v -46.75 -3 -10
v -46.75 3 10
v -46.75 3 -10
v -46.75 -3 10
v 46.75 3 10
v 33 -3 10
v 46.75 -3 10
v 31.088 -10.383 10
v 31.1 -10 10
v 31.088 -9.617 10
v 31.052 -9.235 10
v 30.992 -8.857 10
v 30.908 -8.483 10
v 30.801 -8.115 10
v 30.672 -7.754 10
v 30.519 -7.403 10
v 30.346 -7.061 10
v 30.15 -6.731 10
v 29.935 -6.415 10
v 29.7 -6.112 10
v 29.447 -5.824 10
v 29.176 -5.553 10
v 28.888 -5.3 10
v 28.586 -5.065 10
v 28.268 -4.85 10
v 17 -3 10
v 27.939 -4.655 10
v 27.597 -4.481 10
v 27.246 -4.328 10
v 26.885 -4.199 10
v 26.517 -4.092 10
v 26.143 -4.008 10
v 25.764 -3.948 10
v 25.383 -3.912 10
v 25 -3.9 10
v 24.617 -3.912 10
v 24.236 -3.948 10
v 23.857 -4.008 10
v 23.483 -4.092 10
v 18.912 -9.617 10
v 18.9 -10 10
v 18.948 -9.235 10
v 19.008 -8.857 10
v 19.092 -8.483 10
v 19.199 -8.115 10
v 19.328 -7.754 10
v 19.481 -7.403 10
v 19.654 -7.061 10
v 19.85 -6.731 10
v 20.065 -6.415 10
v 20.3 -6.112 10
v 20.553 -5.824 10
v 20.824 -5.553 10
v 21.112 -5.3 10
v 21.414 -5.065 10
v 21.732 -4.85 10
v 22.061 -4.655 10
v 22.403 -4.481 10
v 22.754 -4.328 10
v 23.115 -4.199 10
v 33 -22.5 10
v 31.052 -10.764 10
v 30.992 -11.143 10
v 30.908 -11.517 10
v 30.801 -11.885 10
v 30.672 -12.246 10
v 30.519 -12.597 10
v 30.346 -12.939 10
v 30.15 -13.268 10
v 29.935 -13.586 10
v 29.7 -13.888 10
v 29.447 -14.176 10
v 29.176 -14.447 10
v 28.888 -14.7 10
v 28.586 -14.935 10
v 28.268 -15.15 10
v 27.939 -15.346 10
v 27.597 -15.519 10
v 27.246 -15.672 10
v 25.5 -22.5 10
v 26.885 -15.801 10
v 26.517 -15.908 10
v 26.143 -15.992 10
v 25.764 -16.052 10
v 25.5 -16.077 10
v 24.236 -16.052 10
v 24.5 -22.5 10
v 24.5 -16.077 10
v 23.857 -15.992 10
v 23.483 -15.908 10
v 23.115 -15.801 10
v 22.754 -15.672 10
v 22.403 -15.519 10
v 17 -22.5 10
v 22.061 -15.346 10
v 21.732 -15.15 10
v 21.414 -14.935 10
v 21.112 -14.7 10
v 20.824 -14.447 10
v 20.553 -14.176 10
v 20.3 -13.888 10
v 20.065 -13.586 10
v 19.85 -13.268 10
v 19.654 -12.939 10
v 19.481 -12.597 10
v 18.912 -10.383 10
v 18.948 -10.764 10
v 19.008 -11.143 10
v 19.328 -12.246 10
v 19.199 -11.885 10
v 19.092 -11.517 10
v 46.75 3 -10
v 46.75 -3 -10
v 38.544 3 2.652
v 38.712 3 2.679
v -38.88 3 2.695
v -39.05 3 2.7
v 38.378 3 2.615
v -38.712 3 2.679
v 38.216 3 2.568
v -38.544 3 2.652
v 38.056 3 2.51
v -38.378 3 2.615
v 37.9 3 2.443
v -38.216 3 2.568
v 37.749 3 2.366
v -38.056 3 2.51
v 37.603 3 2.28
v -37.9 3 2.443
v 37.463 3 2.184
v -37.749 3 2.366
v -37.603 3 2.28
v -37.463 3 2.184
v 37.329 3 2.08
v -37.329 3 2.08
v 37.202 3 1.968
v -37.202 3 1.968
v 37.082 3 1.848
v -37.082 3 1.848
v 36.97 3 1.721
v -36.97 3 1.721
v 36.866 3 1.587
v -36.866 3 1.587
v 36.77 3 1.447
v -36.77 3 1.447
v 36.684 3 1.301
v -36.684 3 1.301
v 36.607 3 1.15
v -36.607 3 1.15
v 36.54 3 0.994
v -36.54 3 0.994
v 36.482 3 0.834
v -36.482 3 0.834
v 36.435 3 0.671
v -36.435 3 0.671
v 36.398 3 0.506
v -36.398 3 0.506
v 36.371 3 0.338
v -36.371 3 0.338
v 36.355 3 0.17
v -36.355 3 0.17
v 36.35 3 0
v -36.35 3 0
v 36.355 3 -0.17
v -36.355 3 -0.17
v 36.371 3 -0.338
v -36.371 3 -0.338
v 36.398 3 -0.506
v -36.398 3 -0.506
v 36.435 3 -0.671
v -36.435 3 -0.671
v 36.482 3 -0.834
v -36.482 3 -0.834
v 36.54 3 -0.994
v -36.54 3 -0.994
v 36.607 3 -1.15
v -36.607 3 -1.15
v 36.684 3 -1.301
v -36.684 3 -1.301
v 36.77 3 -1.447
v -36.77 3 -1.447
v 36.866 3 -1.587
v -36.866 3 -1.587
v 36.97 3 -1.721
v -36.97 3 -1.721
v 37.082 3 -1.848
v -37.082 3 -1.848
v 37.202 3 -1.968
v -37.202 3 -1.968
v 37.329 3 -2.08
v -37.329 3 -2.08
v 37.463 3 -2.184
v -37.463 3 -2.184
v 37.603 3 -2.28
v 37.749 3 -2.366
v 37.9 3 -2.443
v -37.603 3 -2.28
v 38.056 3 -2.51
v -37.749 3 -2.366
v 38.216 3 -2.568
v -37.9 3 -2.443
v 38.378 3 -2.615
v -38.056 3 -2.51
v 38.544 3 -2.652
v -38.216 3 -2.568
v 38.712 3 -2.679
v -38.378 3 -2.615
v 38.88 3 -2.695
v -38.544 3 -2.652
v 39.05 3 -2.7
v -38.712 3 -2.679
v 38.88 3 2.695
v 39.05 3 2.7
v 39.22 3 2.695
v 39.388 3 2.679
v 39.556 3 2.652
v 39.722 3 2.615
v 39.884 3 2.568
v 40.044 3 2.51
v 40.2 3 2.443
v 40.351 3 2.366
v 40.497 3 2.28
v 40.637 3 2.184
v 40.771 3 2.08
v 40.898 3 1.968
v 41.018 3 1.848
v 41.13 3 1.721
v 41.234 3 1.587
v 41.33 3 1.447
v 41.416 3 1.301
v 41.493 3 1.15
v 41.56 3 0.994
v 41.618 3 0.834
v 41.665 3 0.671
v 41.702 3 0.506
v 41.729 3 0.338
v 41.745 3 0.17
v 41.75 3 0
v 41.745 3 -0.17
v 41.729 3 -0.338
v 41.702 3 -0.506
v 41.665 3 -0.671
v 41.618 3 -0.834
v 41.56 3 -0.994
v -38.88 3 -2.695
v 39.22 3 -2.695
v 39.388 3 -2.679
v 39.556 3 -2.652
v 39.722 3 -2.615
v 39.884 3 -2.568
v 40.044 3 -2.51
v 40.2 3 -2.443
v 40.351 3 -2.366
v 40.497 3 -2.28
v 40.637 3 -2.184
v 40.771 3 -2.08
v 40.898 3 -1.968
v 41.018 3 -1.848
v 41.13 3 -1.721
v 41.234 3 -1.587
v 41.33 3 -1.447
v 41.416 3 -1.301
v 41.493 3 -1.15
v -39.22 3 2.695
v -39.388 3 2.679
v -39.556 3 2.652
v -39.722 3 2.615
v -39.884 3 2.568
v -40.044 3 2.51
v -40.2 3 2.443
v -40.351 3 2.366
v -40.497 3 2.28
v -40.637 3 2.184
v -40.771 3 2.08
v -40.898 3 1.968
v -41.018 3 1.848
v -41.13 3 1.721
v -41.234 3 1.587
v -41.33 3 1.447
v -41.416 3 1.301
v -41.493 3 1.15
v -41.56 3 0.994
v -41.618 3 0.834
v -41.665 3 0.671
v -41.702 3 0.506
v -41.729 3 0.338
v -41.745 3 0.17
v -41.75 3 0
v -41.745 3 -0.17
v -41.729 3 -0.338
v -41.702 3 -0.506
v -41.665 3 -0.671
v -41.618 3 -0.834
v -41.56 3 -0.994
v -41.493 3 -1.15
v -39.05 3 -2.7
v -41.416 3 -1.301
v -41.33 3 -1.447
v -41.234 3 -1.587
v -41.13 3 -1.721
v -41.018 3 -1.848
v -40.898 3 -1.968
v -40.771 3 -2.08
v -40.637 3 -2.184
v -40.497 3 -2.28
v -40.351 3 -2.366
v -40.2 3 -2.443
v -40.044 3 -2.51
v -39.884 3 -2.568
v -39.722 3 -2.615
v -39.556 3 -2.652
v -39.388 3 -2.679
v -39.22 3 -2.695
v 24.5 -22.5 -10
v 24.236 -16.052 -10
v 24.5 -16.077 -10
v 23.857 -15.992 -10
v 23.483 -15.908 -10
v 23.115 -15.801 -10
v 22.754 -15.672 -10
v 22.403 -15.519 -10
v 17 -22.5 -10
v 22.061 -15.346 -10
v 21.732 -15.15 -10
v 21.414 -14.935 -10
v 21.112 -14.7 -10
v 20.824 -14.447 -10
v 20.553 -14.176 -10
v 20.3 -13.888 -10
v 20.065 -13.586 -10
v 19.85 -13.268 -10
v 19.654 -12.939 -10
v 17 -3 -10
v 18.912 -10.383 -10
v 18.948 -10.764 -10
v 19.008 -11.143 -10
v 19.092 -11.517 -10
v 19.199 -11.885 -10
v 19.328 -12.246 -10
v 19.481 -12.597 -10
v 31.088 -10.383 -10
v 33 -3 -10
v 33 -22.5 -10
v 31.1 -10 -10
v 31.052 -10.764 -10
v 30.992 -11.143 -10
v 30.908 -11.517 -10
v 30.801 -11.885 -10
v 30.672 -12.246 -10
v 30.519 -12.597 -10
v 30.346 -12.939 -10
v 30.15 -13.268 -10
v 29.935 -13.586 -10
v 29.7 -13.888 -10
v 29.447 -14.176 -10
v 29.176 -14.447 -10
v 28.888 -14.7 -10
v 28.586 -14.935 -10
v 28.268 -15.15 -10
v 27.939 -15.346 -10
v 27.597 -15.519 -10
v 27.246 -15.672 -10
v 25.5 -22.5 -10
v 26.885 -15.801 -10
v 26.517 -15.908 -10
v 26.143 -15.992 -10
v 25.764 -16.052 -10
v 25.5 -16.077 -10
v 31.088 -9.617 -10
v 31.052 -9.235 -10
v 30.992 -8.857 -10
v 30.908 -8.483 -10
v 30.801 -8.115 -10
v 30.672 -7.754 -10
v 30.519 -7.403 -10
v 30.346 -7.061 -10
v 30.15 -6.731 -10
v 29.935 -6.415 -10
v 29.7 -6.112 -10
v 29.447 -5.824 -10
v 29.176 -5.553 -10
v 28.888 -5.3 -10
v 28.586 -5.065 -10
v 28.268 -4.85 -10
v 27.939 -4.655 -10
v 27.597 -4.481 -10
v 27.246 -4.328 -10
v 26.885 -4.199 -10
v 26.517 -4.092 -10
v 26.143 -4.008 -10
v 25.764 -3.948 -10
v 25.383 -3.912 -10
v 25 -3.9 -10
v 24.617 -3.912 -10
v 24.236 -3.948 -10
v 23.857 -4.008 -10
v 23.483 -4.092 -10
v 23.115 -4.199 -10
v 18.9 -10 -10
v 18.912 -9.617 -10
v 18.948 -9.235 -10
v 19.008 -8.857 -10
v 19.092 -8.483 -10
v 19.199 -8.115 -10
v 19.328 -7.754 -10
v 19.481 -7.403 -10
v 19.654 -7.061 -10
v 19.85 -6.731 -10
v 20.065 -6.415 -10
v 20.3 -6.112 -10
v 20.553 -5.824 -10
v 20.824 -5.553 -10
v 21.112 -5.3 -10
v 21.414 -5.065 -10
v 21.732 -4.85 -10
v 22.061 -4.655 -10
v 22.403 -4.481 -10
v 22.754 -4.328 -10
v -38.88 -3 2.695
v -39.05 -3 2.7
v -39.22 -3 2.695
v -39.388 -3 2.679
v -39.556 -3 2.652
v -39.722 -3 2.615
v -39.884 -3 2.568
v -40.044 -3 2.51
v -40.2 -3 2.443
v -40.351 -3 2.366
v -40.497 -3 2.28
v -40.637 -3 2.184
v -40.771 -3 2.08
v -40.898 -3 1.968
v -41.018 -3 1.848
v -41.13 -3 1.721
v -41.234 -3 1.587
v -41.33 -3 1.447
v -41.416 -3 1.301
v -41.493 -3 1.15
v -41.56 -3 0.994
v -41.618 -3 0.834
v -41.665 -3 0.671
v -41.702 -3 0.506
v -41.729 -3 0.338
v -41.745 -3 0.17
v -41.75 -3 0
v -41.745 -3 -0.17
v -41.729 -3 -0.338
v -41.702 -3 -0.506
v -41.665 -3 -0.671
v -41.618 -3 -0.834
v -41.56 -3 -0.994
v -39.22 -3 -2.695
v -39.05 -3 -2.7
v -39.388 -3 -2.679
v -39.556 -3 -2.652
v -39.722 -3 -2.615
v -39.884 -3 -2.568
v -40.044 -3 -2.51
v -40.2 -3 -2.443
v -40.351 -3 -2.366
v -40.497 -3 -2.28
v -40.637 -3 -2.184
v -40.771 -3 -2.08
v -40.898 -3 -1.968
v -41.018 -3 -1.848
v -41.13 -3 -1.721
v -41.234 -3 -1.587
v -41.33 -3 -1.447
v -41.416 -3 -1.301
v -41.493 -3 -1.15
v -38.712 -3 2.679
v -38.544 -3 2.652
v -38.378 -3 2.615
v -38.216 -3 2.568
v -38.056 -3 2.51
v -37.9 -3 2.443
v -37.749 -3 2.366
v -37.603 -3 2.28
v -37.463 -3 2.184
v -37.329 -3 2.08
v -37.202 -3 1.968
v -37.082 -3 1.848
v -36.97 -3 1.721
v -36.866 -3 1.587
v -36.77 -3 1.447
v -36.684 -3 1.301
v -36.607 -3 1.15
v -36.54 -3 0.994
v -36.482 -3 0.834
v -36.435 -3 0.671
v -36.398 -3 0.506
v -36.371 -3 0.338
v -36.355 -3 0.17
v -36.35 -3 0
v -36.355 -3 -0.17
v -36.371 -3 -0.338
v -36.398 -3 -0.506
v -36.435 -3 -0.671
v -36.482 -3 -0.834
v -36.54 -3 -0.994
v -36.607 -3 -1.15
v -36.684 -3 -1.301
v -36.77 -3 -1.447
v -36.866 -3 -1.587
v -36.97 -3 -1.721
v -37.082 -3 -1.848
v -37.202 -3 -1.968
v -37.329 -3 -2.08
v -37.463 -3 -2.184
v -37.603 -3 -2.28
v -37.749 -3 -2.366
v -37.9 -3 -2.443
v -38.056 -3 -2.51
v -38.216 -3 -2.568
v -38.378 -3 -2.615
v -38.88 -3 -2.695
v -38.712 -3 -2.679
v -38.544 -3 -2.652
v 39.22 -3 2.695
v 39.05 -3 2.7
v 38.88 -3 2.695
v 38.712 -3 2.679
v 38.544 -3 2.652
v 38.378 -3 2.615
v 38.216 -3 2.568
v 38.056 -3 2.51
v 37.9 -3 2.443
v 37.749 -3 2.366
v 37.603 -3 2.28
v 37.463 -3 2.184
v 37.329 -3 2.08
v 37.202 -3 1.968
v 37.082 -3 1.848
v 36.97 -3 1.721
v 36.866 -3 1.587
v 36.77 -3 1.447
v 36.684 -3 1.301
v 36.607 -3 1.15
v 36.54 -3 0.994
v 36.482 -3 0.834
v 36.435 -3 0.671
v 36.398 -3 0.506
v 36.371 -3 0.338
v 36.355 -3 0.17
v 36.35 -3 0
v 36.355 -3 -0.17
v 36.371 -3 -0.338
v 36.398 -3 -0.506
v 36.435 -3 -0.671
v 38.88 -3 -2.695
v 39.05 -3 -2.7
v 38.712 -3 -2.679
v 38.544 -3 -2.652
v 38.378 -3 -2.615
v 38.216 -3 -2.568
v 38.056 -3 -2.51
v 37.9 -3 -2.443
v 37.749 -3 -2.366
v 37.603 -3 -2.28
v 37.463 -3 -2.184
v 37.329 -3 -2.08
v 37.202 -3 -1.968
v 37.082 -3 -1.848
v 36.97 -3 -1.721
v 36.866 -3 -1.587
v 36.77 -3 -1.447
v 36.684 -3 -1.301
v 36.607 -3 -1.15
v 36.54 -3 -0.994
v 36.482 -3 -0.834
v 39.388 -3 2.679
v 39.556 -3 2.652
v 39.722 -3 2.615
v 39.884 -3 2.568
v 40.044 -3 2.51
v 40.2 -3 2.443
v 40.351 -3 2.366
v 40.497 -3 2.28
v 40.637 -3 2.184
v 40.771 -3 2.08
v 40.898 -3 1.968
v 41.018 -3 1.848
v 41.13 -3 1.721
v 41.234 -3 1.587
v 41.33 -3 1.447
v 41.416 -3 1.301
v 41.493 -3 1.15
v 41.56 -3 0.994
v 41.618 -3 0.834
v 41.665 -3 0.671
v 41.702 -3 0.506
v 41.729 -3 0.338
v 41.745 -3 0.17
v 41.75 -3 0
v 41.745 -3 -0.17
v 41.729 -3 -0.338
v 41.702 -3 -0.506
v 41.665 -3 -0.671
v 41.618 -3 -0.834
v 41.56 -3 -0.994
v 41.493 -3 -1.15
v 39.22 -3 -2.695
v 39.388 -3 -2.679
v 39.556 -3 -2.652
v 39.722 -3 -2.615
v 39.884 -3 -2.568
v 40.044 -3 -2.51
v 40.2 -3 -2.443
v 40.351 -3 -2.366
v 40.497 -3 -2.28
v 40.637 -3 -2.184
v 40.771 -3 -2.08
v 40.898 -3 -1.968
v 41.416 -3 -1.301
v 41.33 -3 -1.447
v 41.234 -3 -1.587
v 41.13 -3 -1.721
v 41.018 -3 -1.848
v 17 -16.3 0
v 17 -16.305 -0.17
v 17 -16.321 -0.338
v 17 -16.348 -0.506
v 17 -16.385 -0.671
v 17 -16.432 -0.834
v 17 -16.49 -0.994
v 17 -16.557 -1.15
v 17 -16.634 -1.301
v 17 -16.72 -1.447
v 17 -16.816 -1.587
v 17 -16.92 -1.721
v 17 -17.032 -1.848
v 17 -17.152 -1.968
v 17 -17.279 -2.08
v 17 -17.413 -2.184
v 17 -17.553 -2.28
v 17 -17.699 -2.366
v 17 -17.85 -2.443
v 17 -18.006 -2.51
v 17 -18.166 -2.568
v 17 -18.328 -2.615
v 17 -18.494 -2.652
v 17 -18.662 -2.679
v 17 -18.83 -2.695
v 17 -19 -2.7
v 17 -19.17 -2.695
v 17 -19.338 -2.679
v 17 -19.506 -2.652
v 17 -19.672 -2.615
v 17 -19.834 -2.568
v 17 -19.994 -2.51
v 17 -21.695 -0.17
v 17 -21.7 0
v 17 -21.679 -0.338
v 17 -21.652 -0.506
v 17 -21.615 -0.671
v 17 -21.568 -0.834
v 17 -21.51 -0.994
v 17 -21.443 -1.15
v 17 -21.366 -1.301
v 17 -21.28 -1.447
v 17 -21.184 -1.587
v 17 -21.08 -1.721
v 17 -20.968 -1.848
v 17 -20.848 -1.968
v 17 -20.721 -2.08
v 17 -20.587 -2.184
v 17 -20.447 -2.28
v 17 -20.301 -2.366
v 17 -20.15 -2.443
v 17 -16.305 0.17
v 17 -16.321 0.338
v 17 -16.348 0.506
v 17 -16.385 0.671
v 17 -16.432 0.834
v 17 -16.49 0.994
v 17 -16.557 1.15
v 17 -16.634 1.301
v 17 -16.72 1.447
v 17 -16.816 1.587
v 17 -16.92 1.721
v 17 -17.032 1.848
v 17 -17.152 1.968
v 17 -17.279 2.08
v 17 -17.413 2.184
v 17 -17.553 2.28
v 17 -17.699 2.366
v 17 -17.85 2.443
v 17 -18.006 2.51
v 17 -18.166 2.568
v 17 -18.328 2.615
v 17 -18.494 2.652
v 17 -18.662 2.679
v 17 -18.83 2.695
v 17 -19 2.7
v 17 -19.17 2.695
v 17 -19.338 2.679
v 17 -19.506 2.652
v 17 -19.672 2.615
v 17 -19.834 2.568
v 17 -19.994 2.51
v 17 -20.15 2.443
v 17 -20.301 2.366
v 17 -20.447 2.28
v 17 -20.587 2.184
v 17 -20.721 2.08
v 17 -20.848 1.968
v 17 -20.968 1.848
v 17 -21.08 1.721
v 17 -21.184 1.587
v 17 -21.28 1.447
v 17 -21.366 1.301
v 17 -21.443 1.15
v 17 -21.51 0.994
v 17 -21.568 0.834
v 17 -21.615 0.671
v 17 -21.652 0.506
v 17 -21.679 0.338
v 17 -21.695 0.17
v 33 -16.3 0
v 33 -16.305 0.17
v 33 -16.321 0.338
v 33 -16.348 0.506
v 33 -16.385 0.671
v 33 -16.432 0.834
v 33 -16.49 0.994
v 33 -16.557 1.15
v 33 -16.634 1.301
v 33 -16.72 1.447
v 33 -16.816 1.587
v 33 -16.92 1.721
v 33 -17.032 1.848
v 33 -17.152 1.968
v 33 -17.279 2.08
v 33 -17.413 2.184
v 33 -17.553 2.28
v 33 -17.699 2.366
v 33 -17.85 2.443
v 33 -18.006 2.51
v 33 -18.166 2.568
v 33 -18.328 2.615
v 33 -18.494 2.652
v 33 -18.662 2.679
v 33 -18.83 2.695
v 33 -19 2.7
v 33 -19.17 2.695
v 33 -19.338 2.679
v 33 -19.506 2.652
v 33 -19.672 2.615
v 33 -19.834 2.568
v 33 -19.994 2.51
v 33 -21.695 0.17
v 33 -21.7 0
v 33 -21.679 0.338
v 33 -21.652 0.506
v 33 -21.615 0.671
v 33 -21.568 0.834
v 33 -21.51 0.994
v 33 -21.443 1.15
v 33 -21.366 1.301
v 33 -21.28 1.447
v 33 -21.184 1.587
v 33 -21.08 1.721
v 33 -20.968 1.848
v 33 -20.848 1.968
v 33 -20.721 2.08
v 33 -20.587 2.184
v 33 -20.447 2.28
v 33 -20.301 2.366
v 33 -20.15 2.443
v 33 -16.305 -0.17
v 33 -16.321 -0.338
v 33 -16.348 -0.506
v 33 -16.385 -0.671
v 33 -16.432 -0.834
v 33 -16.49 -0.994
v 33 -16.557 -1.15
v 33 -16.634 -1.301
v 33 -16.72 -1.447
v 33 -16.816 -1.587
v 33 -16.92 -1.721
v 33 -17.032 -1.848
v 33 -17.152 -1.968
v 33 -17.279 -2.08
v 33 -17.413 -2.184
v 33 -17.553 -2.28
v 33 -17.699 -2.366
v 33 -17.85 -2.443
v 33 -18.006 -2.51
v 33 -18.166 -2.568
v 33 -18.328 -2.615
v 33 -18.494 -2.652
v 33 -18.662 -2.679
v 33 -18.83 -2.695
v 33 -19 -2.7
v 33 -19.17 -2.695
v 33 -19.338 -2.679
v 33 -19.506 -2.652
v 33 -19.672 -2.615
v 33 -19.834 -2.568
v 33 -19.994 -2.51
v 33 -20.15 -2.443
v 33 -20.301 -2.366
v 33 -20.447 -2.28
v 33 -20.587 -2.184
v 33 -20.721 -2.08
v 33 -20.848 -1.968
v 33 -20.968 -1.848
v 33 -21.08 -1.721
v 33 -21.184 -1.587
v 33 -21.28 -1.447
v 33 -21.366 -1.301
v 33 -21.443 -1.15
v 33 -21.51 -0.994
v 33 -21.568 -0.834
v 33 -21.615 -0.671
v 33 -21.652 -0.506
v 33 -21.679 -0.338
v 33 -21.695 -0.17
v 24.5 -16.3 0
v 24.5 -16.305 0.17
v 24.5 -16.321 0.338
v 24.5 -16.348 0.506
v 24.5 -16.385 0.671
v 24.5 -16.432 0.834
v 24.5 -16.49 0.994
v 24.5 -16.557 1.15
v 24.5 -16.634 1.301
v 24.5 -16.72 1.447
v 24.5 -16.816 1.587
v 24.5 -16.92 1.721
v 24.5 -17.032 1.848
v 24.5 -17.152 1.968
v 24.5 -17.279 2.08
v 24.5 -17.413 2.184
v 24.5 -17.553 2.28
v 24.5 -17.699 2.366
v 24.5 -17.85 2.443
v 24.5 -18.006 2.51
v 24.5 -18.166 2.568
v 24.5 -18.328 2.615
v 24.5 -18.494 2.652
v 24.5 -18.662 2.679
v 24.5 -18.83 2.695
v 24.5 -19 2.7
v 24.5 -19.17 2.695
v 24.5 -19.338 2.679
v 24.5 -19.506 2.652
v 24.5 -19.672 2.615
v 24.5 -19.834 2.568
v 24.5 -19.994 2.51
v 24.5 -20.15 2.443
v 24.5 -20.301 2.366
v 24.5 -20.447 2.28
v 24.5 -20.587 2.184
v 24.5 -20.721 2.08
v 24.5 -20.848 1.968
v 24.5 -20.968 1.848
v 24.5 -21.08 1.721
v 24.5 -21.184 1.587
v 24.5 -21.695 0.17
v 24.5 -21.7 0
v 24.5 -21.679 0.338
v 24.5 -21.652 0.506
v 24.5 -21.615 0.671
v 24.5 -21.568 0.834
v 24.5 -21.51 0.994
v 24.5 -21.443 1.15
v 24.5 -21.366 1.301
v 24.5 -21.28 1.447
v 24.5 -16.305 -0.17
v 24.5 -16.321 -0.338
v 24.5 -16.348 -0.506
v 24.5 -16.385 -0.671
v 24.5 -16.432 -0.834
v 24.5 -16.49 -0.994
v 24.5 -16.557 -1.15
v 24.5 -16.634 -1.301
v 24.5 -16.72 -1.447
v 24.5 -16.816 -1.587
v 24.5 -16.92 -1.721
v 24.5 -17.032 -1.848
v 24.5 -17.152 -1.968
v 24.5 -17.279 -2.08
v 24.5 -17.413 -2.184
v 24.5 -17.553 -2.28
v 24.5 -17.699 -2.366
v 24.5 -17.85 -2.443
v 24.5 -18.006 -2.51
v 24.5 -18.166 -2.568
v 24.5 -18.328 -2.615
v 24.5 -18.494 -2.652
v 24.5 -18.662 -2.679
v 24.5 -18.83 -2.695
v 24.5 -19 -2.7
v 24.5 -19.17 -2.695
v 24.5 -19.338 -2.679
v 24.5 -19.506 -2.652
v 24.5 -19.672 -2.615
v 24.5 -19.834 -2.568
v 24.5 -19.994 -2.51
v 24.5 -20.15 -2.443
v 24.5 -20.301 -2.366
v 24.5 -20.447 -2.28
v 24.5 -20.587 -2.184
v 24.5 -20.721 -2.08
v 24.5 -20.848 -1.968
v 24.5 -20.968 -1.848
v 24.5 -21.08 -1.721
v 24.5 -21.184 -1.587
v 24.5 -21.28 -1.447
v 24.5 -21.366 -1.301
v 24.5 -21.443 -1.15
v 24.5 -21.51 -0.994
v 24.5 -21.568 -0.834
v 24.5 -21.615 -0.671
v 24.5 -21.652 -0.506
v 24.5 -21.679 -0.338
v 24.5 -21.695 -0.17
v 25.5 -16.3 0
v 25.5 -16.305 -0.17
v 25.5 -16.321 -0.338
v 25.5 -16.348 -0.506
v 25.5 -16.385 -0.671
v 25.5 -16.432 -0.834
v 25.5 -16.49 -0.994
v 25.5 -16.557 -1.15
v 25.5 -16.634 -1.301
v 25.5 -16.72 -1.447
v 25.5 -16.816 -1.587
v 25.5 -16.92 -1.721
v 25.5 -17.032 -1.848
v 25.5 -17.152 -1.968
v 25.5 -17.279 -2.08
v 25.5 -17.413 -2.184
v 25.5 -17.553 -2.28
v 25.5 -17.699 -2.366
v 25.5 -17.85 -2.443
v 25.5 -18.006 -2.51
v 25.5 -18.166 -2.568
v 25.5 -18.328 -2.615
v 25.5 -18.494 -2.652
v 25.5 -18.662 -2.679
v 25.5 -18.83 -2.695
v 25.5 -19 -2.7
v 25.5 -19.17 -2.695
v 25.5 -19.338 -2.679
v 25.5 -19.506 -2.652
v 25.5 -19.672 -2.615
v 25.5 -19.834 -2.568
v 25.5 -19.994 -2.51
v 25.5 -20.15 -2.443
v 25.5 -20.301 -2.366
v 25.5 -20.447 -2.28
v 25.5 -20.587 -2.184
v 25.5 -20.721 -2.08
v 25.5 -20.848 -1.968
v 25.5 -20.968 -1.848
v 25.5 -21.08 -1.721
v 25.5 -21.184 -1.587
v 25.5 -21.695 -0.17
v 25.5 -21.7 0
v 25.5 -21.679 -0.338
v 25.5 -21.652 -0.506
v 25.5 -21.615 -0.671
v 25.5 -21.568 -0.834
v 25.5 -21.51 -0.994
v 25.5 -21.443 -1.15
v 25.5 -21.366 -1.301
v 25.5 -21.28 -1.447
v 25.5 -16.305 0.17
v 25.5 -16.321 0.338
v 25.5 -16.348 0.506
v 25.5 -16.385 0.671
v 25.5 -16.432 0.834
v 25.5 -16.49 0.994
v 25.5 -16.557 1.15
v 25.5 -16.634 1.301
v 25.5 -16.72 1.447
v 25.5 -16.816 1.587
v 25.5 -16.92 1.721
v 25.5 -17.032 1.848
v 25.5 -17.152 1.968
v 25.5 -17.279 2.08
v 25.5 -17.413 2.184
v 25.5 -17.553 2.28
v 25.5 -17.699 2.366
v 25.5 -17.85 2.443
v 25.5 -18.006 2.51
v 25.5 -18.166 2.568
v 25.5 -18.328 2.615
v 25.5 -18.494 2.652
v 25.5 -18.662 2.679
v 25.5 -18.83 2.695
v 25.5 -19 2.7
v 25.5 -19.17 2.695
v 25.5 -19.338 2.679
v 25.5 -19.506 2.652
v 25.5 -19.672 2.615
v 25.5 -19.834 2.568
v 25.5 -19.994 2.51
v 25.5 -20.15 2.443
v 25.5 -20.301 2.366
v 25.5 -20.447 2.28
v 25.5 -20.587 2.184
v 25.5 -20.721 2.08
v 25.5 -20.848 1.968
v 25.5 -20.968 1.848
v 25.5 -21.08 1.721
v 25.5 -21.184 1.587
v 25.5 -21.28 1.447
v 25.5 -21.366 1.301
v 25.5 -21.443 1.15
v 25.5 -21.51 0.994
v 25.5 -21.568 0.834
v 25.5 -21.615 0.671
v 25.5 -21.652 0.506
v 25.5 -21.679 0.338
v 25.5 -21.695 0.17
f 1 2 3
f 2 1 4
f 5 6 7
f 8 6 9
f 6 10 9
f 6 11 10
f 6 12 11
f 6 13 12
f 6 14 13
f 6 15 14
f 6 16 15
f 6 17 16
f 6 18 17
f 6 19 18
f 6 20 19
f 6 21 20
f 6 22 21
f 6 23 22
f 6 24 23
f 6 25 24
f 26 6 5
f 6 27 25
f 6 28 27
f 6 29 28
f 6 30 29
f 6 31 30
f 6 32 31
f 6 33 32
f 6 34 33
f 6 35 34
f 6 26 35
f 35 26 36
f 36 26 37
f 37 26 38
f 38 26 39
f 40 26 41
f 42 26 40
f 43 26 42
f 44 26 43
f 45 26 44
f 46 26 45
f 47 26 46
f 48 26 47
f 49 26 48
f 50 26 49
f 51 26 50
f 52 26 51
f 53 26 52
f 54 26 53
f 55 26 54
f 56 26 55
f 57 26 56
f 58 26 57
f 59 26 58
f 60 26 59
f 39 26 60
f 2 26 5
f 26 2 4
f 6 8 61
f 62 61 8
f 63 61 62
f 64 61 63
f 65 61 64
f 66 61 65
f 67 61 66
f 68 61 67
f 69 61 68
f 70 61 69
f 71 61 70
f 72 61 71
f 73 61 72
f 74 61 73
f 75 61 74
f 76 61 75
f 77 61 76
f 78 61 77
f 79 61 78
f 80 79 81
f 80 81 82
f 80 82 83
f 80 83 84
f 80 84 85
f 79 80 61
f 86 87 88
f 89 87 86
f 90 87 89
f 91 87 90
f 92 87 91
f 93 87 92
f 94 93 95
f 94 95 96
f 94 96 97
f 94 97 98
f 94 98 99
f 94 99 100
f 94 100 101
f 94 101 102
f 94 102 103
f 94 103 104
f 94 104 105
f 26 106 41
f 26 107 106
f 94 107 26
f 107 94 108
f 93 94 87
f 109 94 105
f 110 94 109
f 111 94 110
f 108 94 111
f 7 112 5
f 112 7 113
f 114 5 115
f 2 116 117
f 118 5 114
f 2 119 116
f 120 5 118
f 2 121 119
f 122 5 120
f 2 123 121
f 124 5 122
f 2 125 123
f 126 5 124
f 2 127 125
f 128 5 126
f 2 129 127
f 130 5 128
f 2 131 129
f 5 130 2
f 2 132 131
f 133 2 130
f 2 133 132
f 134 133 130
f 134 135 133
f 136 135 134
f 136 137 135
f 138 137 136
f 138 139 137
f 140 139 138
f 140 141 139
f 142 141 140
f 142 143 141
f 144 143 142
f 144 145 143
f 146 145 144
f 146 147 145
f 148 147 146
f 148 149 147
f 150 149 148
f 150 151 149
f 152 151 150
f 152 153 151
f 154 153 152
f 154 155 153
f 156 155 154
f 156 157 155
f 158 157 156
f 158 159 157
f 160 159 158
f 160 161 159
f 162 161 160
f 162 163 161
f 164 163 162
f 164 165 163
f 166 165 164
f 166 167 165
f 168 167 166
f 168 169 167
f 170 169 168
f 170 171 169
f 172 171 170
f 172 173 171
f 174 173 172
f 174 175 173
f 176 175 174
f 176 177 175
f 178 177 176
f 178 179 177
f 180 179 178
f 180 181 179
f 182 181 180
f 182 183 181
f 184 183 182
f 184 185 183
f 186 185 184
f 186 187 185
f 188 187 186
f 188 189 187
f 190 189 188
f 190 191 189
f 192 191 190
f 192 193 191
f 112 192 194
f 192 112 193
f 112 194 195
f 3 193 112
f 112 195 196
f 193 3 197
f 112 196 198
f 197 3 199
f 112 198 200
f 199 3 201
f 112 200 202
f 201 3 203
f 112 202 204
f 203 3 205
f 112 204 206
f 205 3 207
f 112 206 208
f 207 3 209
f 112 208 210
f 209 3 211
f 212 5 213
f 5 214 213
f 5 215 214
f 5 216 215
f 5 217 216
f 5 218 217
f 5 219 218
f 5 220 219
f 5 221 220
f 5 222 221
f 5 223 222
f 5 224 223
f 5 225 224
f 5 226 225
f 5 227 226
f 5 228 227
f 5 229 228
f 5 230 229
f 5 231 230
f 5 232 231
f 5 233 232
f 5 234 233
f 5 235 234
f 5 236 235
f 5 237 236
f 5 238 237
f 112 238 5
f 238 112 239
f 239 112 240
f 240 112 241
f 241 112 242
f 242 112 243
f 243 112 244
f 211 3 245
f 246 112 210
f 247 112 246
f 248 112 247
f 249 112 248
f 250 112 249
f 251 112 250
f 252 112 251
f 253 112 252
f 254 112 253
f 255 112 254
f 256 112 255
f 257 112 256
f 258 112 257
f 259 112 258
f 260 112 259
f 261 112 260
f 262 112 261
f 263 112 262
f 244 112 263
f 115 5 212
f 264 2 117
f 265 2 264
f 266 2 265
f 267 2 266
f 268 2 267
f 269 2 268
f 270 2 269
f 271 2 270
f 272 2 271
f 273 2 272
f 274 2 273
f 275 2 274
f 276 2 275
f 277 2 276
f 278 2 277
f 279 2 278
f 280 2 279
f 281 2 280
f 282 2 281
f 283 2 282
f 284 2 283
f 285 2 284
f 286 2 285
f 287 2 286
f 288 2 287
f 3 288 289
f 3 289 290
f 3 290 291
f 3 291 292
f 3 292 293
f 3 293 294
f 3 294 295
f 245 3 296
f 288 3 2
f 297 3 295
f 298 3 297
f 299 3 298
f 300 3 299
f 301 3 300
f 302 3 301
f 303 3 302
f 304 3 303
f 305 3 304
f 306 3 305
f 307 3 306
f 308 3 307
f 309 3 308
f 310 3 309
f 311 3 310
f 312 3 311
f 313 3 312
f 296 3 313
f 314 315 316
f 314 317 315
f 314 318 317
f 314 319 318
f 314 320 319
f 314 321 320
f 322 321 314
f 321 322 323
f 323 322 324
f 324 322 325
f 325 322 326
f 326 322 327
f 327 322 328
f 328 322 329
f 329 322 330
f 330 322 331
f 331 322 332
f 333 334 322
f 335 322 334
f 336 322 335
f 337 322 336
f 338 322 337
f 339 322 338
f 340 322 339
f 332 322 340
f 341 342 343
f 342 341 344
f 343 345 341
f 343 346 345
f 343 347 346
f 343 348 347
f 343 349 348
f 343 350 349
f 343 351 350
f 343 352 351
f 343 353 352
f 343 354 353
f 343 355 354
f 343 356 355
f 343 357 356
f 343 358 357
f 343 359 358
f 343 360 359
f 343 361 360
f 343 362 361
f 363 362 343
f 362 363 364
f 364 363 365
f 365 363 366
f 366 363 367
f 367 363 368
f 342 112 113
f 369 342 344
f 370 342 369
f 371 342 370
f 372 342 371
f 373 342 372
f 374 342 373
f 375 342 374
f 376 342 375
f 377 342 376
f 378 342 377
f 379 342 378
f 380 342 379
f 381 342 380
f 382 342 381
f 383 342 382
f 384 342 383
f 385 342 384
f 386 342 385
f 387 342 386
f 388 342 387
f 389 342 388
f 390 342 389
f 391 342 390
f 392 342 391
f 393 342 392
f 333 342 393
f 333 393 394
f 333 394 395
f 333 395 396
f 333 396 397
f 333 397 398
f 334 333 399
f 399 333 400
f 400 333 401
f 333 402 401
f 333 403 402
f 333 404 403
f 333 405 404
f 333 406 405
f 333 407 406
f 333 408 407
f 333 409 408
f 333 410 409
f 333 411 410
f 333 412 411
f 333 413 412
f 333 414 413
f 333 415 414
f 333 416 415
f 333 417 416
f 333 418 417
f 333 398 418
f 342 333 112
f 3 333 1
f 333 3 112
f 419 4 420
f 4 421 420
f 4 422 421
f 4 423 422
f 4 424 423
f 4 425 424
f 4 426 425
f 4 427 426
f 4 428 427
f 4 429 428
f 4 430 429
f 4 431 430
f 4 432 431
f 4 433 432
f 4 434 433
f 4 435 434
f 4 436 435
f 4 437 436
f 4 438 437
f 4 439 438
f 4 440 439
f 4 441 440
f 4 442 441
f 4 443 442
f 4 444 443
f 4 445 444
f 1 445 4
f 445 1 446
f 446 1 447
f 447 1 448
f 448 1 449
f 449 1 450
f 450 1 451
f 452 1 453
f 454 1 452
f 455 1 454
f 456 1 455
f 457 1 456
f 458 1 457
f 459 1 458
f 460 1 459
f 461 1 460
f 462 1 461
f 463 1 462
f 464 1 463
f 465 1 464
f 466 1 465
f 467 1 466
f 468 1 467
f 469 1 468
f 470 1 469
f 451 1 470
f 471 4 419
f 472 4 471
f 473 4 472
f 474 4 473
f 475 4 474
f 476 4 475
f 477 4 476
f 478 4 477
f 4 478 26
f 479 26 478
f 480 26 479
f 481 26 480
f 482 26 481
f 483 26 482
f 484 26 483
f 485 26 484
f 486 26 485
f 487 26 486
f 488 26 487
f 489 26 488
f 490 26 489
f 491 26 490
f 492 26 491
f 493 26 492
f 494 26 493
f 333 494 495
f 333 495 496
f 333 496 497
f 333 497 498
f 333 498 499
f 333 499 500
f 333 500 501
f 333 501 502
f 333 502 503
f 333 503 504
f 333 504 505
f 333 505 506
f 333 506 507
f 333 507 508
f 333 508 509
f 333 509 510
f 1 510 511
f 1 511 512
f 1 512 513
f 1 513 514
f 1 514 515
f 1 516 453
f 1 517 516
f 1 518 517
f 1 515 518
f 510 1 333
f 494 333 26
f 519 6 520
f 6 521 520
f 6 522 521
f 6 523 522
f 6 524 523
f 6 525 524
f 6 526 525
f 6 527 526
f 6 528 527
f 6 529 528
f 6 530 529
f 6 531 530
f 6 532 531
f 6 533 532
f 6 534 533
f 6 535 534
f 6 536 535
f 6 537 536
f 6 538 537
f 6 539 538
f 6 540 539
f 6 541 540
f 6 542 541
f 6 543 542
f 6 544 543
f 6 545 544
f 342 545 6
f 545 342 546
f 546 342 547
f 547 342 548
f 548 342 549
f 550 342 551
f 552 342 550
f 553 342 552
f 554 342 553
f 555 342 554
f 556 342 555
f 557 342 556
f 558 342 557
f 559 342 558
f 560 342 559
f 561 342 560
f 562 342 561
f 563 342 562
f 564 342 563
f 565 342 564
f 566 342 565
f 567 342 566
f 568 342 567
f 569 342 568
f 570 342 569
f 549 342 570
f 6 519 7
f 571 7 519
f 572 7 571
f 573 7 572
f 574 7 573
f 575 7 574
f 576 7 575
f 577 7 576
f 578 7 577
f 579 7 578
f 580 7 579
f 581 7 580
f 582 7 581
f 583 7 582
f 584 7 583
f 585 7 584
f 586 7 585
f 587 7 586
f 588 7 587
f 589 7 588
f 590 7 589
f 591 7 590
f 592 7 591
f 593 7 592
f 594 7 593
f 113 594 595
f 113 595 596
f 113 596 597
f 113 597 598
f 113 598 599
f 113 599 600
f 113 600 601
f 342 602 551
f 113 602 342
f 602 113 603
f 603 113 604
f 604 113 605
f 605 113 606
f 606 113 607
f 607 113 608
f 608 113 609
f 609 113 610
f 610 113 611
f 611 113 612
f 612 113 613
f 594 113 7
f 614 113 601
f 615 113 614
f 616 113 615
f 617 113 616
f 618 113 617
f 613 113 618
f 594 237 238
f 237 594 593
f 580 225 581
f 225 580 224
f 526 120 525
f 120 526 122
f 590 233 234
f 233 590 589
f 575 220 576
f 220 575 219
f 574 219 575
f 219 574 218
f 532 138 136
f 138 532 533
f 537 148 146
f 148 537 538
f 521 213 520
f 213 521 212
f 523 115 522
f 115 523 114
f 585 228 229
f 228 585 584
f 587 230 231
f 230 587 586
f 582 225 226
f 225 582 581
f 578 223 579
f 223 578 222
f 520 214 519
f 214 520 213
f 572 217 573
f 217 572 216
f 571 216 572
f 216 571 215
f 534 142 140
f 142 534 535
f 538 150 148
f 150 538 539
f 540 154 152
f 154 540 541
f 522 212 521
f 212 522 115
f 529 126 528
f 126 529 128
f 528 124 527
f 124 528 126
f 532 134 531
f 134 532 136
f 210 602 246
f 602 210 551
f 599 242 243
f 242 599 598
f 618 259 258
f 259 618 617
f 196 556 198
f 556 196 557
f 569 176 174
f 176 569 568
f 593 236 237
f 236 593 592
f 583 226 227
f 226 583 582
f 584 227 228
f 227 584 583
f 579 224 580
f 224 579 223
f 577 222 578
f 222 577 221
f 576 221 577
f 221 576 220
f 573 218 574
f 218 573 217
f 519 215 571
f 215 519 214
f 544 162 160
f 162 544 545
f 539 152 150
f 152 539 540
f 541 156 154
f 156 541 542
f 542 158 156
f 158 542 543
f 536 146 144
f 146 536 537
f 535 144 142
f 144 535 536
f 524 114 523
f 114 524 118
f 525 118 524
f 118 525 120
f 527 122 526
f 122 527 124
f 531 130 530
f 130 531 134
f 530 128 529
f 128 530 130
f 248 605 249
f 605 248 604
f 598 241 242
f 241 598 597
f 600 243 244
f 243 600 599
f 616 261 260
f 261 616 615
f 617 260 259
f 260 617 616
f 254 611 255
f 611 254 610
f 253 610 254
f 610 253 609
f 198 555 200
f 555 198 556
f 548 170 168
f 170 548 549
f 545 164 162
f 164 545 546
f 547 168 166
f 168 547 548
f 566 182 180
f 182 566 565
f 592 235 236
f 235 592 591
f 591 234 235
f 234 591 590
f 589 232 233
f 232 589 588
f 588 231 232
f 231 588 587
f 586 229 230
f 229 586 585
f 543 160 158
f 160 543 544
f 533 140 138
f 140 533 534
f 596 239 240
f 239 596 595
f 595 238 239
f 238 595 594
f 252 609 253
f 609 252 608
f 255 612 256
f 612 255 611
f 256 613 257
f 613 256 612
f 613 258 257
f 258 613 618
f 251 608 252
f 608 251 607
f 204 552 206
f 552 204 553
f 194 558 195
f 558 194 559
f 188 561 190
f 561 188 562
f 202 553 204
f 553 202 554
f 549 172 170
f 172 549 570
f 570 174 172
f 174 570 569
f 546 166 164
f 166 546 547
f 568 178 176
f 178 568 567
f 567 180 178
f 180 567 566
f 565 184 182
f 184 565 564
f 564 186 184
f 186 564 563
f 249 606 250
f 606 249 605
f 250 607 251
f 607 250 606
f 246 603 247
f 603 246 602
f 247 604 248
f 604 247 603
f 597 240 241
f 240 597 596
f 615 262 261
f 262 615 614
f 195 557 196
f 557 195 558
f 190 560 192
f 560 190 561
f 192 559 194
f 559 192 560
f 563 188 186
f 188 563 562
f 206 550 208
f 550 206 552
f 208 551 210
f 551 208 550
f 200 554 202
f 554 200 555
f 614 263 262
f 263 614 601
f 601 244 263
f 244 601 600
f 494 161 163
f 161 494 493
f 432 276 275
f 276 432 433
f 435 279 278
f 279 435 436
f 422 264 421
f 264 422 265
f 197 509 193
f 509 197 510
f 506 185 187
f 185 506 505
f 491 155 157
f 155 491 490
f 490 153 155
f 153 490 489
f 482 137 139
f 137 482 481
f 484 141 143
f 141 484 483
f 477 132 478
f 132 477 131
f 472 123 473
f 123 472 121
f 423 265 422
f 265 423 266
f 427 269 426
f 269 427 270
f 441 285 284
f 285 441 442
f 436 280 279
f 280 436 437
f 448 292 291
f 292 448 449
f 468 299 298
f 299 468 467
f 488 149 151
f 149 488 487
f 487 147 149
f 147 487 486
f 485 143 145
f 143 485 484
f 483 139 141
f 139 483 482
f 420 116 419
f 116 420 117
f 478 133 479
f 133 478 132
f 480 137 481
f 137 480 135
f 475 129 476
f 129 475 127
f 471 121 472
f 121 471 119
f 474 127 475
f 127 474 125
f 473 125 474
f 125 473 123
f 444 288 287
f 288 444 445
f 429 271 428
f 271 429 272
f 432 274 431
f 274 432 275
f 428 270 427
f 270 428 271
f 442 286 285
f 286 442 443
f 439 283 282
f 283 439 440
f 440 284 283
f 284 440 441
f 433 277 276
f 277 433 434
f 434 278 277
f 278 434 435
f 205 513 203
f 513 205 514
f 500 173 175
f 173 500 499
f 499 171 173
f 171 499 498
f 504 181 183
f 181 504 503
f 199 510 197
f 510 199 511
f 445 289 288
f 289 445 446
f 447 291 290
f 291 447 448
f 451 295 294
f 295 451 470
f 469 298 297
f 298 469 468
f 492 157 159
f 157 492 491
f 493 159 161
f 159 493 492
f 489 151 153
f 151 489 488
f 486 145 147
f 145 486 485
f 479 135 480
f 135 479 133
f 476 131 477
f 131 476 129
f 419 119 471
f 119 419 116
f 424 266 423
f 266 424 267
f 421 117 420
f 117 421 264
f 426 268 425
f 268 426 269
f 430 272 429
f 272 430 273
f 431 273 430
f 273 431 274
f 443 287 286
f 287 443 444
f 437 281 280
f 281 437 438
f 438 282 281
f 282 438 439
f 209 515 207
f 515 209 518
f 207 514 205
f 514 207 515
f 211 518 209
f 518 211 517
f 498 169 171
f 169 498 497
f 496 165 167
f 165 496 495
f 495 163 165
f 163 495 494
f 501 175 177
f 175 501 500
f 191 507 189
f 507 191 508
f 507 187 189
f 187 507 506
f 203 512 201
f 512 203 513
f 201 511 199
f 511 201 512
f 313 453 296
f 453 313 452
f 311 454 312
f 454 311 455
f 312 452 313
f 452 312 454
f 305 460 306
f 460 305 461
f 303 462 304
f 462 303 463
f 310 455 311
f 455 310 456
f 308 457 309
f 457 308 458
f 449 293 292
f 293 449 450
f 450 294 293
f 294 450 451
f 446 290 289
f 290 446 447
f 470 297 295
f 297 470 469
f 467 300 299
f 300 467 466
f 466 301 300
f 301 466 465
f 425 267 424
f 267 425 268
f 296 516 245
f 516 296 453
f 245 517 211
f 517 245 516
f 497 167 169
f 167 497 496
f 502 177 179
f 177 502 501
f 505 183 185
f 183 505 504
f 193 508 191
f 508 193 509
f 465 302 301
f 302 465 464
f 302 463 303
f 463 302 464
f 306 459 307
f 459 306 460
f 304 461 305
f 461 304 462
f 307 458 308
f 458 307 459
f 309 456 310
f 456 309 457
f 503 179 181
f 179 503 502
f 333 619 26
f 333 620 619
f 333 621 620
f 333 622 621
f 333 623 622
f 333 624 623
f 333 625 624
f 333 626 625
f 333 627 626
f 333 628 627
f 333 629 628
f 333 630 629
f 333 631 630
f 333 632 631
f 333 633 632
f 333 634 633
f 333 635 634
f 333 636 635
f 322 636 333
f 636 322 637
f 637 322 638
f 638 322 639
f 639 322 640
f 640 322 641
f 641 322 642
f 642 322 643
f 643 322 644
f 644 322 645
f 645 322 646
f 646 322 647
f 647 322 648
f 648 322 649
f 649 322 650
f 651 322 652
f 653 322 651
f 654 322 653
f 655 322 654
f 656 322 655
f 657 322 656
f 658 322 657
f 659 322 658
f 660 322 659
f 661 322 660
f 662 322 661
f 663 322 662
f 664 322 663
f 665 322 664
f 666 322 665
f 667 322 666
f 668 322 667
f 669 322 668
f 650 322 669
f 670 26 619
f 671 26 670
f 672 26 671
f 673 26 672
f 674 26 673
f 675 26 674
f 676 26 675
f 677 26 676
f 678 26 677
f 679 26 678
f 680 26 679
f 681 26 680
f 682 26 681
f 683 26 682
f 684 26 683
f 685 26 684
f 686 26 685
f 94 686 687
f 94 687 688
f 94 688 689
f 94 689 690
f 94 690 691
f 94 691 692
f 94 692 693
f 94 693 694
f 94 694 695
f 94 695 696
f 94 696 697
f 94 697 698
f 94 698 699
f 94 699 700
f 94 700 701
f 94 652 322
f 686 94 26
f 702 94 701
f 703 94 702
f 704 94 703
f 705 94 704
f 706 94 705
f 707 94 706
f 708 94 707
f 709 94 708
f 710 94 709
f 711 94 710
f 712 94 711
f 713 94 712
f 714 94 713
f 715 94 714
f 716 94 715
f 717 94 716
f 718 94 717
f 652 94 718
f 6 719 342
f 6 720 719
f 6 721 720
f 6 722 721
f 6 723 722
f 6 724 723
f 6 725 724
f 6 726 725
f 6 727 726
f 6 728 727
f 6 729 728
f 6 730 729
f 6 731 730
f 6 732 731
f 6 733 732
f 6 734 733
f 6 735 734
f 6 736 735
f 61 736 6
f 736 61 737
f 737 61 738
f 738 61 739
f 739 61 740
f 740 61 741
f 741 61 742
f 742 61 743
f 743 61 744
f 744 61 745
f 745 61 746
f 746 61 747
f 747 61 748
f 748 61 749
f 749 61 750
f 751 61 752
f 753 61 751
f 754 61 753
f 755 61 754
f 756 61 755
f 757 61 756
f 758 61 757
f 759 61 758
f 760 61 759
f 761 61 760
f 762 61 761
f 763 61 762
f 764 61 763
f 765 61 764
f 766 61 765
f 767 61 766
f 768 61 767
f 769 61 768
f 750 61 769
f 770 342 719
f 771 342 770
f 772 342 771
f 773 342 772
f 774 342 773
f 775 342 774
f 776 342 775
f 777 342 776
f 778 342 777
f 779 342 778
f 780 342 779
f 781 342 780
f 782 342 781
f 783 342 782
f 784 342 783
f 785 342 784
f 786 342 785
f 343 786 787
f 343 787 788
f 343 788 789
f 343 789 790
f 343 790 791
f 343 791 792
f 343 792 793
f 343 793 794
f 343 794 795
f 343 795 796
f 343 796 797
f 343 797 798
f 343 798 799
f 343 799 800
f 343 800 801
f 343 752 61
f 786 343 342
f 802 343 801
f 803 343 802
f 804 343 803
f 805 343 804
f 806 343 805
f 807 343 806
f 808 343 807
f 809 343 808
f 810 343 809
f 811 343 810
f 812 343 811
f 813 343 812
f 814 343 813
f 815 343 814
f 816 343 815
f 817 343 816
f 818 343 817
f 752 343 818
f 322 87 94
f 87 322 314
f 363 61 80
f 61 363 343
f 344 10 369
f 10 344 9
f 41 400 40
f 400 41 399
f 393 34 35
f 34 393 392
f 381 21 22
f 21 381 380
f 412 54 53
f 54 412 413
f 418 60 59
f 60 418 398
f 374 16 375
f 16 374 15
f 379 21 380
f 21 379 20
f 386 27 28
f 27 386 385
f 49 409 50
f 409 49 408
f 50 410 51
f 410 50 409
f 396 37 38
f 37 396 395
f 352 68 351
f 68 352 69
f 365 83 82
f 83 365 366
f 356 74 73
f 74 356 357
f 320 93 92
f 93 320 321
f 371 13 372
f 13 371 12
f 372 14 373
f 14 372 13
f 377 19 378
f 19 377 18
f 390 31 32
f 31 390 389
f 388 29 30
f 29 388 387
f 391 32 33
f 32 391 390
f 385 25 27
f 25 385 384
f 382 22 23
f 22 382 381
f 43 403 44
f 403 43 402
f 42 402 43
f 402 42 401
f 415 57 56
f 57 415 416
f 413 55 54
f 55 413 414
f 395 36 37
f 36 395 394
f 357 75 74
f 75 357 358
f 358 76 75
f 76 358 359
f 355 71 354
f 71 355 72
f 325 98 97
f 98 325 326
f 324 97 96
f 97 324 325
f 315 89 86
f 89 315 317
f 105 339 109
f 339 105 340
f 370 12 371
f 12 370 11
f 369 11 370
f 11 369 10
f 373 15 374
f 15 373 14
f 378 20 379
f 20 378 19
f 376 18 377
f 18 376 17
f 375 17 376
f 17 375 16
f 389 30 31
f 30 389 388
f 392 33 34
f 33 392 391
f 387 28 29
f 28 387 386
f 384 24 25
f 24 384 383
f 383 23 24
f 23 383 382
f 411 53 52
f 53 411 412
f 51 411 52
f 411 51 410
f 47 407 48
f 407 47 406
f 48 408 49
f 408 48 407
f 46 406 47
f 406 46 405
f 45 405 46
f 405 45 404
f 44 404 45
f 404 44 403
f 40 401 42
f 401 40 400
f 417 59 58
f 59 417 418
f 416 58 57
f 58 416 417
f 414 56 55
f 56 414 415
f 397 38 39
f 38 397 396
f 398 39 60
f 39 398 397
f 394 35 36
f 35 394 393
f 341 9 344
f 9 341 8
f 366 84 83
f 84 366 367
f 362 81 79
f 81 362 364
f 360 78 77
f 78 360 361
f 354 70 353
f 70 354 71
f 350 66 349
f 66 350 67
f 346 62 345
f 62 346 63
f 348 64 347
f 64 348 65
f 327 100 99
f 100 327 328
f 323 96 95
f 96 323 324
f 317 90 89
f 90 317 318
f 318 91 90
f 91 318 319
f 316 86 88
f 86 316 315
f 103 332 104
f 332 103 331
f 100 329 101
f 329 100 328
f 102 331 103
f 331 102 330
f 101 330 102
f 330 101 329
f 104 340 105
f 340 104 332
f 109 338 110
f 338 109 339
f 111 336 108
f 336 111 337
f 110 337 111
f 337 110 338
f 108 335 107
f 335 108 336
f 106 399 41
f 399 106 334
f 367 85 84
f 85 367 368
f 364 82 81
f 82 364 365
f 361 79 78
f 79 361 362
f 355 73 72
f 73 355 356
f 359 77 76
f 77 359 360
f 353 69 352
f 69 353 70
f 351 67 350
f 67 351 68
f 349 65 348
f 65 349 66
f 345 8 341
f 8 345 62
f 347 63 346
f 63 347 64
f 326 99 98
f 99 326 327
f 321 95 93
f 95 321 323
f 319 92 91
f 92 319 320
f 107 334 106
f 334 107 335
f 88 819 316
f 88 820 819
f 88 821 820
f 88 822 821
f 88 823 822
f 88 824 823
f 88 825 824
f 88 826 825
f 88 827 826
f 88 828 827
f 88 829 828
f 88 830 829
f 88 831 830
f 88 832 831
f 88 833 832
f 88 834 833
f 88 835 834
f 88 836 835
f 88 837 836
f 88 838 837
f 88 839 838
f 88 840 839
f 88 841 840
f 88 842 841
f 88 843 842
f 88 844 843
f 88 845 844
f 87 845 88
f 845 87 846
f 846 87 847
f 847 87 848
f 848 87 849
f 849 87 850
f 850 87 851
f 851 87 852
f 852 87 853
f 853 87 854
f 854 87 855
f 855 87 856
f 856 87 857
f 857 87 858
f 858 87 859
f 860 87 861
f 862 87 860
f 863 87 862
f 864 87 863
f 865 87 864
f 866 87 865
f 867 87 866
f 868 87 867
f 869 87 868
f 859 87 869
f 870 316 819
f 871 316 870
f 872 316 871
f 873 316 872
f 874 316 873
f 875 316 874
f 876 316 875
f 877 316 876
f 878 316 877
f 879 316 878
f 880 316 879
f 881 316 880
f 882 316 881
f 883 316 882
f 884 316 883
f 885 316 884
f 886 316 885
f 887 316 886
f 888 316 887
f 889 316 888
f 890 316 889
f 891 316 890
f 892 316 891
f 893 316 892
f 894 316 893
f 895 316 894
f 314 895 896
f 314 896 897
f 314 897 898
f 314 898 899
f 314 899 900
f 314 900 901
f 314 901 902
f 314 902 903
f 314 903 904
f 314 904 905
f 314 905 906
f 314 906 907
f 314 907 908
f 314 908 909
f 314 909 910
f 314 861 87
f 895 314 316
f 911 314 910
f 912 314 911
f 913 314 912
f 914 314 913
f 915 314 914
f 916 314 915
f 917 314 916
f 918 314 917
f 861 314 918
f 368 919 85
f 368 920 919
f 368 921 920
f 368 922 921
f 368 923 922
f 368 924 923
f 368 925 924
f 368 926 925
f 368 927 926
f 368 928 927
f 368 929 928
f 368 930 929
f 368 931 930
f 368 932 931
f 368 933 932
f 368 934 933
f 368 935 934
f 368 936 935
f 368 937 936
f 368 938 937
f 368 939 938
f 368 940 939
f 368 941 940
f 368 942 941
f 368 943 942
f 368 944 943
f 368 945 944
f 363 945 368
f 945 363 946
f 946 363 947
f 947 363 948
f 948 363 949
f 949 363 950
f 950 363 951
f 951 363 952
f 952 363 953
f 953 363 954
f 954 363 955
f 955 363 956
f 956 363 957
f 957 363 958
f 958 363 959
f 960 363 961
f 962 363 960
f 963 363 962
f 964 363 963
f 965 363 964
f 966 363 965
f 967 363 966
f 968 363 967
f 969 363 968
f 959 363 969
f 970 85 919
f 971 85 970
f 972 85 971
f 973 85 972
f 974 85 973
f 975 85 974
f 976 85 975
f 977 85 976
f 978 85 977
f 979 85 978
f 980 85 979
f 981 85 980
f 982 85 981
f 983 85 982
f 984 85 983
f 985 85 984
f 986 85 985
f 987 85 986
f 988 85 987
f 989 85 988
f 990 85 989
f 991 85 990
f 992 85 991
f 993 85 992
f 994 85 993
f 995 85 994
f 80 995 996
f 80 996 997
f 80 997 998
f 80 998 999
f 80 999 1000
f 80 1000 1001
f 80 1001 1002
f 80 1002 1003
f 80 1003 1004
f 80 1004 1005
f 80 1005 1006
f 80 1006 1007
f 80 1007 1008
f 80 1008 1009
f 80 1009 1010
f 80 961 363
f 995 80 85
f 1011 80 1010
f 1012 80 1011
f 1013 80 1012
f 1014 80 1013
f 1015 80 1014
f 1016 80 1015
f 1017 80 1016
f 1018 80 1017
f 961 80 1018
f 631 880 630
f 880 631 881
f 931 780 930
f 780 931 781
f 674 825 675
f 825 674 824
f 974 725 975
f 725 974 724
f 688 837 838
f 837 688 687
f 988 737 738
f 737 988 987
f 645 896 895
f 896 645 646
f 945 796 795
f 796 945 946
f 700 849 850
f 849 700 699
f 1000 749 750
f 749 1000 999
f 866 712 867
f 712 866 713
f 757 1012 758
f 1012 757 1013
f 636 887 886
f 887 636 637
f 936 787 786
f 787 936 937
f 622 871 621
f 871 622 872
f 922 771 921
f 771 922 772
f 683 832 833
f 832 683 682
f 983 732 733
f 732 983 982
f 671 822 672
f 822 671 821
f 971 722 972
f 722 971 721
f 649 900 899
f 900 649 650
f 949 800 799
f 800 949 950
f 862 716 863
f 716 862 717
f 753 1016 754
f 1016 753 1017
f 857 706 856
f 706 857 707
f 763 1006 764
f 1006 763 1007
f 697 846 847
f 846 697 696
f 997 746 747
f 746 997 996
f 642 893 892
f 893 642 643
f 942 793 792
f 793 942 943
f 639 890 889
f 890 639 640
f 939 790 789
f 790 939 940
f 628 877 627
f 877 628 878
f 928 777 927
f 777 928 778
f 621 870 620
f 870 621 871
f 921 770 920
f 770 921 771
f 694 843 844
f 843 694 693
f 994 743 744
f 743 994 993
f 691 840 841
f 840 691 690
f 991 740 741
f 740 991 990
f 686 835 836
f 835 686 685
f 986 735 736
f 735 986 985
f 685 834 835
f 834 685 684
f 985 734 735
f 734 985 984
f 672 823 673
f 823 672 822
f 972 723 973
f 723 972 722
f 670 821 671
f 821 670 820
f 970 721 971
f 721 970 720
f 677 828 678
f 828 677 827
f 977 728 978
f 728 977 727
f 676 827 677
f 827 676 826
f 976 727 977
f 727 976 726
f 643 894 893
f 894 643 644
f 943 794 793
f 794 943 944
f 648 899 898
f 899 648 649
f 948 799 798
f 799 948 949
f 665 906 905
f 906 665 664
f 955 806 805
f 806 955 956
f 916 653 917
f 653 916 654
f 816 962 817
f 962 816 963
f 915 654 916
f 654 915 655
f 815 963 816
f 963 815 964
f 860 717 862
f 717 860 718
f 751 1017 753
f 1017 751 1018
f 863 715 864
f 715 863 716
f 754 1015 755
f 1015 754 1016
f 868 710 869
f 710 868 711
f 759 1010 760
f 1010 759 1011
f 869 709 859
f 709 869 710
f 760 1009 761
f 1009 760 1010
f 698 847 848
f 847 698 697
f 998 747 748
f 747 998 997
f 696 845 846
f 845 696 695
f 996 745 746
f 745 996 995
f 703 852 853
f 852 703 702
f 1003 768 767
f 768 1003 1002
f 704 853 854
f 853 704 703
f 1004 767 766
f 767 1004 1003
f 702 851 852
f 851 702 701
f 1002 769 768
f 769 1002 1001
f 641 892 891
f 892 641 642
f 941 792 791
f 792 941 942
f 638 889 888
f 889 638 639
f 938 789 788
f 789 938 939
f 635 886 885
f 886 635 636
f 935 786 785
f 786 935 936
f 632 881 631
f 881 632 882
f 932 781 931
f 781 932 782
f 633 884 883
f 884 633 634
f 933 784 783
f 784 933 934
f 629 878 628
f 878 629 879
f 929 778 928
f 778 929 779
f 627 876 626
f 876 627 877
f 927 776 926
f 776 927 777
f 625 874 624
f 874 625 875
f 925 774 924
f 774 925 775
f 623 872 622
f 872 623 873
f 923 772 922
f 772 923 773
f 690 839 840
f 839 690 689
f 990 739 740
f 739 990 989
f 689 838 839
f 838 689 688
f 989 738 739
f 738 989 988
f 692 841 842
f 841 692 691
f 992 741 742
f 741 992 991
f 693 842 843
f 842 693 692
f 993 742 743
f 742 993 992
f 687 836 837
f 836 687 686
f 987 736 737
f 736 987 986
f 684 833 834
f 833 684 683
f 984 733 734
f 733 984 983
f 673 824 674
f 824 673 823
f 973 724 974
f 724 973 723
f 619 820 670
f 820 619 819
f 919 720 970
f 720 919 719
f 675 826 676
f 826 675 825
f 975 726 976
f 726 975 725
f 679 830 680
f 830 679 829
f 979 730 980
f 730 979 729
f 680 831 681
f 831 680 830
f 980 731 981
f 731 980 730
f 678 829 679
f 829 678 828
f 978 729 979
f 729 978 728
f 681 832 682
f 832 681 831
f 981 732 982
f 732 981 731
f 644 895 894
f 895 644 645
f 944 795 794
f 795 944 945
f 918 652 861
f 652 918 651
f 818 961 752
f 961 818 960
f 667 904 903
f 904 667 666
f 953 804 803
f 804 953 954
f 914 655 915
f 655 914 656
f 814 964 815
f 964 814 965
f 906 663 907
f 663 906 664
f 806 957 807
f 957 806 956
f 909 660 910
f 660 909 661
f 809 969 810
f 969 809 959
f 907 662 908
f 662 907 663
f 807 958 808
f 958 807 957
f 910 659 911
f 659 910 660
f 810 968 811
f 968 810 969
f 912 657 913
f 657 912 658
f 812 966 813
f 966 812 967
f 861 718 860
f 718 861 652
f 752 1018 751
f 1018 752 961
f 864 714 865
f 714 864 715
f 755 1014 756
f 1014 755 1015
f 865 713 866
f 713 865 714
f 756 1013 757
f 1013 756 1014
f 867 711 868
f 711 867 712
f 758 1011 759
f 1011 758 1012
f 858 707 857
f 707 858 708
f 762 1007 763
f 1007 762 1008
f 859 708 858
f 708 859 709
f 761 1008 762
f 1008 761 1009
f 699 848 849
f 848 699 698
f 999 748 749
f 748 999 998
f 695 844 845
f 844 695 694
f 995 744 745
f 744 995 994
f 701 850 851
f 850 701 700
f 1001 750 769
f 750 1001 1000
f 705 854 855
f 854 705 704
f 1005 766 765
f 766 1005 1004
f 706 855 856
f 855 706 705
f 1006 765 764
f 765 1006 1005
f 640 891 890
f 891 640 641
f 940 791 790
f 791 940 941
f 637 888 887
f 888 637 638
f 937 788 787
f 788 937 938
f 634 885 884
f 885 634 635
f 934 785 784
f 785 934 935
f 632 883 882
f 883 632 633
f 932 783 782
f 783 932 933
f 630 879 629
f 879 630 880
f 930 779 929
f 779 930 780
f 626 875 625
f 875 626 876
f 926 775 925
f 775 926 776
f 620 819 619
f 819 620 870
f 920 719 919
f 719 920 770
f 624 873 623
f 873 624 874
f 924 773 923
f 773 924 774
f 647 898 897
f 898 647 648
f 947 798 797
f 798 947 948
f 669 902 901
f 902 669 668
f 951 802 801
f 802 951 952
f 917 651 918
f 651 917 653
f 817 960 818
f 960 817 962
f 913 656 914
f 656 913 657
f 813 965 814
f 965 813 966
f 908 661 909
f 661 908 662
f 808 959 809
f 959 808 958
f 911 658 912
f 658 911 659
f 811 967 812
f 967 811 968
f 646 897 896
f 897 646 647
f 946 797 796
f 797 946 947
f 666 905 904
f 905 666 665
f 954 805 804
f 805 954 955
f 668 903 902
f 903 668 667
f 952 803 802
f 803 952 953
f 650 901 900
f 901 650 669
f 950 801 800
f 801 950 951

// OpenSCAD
$fn=100;
difference(){
cube([93.5,6,20],center=true);
translate([93.5/2-5-2.7,0,0])
rotate([90,0,0])
cylinder(r=2.7,h=15,center=true);
translate([-93.5/2+5+2.7,0,0])
rotate([90,0,0])
cylinder(r=2.7,h=15,center=true);
}
translate([25,-10,0])
difference(){
cube([16,25,20],center=true);
translate([0,0,-15])
cylinder(r=6.1,h=30);
translate([0,-8,0])
cube([1,15,22],center=true);
translate([0,-9,0])
rotate([0,90,0])
cylinder(r=2.7,h=25,center=true);
}
